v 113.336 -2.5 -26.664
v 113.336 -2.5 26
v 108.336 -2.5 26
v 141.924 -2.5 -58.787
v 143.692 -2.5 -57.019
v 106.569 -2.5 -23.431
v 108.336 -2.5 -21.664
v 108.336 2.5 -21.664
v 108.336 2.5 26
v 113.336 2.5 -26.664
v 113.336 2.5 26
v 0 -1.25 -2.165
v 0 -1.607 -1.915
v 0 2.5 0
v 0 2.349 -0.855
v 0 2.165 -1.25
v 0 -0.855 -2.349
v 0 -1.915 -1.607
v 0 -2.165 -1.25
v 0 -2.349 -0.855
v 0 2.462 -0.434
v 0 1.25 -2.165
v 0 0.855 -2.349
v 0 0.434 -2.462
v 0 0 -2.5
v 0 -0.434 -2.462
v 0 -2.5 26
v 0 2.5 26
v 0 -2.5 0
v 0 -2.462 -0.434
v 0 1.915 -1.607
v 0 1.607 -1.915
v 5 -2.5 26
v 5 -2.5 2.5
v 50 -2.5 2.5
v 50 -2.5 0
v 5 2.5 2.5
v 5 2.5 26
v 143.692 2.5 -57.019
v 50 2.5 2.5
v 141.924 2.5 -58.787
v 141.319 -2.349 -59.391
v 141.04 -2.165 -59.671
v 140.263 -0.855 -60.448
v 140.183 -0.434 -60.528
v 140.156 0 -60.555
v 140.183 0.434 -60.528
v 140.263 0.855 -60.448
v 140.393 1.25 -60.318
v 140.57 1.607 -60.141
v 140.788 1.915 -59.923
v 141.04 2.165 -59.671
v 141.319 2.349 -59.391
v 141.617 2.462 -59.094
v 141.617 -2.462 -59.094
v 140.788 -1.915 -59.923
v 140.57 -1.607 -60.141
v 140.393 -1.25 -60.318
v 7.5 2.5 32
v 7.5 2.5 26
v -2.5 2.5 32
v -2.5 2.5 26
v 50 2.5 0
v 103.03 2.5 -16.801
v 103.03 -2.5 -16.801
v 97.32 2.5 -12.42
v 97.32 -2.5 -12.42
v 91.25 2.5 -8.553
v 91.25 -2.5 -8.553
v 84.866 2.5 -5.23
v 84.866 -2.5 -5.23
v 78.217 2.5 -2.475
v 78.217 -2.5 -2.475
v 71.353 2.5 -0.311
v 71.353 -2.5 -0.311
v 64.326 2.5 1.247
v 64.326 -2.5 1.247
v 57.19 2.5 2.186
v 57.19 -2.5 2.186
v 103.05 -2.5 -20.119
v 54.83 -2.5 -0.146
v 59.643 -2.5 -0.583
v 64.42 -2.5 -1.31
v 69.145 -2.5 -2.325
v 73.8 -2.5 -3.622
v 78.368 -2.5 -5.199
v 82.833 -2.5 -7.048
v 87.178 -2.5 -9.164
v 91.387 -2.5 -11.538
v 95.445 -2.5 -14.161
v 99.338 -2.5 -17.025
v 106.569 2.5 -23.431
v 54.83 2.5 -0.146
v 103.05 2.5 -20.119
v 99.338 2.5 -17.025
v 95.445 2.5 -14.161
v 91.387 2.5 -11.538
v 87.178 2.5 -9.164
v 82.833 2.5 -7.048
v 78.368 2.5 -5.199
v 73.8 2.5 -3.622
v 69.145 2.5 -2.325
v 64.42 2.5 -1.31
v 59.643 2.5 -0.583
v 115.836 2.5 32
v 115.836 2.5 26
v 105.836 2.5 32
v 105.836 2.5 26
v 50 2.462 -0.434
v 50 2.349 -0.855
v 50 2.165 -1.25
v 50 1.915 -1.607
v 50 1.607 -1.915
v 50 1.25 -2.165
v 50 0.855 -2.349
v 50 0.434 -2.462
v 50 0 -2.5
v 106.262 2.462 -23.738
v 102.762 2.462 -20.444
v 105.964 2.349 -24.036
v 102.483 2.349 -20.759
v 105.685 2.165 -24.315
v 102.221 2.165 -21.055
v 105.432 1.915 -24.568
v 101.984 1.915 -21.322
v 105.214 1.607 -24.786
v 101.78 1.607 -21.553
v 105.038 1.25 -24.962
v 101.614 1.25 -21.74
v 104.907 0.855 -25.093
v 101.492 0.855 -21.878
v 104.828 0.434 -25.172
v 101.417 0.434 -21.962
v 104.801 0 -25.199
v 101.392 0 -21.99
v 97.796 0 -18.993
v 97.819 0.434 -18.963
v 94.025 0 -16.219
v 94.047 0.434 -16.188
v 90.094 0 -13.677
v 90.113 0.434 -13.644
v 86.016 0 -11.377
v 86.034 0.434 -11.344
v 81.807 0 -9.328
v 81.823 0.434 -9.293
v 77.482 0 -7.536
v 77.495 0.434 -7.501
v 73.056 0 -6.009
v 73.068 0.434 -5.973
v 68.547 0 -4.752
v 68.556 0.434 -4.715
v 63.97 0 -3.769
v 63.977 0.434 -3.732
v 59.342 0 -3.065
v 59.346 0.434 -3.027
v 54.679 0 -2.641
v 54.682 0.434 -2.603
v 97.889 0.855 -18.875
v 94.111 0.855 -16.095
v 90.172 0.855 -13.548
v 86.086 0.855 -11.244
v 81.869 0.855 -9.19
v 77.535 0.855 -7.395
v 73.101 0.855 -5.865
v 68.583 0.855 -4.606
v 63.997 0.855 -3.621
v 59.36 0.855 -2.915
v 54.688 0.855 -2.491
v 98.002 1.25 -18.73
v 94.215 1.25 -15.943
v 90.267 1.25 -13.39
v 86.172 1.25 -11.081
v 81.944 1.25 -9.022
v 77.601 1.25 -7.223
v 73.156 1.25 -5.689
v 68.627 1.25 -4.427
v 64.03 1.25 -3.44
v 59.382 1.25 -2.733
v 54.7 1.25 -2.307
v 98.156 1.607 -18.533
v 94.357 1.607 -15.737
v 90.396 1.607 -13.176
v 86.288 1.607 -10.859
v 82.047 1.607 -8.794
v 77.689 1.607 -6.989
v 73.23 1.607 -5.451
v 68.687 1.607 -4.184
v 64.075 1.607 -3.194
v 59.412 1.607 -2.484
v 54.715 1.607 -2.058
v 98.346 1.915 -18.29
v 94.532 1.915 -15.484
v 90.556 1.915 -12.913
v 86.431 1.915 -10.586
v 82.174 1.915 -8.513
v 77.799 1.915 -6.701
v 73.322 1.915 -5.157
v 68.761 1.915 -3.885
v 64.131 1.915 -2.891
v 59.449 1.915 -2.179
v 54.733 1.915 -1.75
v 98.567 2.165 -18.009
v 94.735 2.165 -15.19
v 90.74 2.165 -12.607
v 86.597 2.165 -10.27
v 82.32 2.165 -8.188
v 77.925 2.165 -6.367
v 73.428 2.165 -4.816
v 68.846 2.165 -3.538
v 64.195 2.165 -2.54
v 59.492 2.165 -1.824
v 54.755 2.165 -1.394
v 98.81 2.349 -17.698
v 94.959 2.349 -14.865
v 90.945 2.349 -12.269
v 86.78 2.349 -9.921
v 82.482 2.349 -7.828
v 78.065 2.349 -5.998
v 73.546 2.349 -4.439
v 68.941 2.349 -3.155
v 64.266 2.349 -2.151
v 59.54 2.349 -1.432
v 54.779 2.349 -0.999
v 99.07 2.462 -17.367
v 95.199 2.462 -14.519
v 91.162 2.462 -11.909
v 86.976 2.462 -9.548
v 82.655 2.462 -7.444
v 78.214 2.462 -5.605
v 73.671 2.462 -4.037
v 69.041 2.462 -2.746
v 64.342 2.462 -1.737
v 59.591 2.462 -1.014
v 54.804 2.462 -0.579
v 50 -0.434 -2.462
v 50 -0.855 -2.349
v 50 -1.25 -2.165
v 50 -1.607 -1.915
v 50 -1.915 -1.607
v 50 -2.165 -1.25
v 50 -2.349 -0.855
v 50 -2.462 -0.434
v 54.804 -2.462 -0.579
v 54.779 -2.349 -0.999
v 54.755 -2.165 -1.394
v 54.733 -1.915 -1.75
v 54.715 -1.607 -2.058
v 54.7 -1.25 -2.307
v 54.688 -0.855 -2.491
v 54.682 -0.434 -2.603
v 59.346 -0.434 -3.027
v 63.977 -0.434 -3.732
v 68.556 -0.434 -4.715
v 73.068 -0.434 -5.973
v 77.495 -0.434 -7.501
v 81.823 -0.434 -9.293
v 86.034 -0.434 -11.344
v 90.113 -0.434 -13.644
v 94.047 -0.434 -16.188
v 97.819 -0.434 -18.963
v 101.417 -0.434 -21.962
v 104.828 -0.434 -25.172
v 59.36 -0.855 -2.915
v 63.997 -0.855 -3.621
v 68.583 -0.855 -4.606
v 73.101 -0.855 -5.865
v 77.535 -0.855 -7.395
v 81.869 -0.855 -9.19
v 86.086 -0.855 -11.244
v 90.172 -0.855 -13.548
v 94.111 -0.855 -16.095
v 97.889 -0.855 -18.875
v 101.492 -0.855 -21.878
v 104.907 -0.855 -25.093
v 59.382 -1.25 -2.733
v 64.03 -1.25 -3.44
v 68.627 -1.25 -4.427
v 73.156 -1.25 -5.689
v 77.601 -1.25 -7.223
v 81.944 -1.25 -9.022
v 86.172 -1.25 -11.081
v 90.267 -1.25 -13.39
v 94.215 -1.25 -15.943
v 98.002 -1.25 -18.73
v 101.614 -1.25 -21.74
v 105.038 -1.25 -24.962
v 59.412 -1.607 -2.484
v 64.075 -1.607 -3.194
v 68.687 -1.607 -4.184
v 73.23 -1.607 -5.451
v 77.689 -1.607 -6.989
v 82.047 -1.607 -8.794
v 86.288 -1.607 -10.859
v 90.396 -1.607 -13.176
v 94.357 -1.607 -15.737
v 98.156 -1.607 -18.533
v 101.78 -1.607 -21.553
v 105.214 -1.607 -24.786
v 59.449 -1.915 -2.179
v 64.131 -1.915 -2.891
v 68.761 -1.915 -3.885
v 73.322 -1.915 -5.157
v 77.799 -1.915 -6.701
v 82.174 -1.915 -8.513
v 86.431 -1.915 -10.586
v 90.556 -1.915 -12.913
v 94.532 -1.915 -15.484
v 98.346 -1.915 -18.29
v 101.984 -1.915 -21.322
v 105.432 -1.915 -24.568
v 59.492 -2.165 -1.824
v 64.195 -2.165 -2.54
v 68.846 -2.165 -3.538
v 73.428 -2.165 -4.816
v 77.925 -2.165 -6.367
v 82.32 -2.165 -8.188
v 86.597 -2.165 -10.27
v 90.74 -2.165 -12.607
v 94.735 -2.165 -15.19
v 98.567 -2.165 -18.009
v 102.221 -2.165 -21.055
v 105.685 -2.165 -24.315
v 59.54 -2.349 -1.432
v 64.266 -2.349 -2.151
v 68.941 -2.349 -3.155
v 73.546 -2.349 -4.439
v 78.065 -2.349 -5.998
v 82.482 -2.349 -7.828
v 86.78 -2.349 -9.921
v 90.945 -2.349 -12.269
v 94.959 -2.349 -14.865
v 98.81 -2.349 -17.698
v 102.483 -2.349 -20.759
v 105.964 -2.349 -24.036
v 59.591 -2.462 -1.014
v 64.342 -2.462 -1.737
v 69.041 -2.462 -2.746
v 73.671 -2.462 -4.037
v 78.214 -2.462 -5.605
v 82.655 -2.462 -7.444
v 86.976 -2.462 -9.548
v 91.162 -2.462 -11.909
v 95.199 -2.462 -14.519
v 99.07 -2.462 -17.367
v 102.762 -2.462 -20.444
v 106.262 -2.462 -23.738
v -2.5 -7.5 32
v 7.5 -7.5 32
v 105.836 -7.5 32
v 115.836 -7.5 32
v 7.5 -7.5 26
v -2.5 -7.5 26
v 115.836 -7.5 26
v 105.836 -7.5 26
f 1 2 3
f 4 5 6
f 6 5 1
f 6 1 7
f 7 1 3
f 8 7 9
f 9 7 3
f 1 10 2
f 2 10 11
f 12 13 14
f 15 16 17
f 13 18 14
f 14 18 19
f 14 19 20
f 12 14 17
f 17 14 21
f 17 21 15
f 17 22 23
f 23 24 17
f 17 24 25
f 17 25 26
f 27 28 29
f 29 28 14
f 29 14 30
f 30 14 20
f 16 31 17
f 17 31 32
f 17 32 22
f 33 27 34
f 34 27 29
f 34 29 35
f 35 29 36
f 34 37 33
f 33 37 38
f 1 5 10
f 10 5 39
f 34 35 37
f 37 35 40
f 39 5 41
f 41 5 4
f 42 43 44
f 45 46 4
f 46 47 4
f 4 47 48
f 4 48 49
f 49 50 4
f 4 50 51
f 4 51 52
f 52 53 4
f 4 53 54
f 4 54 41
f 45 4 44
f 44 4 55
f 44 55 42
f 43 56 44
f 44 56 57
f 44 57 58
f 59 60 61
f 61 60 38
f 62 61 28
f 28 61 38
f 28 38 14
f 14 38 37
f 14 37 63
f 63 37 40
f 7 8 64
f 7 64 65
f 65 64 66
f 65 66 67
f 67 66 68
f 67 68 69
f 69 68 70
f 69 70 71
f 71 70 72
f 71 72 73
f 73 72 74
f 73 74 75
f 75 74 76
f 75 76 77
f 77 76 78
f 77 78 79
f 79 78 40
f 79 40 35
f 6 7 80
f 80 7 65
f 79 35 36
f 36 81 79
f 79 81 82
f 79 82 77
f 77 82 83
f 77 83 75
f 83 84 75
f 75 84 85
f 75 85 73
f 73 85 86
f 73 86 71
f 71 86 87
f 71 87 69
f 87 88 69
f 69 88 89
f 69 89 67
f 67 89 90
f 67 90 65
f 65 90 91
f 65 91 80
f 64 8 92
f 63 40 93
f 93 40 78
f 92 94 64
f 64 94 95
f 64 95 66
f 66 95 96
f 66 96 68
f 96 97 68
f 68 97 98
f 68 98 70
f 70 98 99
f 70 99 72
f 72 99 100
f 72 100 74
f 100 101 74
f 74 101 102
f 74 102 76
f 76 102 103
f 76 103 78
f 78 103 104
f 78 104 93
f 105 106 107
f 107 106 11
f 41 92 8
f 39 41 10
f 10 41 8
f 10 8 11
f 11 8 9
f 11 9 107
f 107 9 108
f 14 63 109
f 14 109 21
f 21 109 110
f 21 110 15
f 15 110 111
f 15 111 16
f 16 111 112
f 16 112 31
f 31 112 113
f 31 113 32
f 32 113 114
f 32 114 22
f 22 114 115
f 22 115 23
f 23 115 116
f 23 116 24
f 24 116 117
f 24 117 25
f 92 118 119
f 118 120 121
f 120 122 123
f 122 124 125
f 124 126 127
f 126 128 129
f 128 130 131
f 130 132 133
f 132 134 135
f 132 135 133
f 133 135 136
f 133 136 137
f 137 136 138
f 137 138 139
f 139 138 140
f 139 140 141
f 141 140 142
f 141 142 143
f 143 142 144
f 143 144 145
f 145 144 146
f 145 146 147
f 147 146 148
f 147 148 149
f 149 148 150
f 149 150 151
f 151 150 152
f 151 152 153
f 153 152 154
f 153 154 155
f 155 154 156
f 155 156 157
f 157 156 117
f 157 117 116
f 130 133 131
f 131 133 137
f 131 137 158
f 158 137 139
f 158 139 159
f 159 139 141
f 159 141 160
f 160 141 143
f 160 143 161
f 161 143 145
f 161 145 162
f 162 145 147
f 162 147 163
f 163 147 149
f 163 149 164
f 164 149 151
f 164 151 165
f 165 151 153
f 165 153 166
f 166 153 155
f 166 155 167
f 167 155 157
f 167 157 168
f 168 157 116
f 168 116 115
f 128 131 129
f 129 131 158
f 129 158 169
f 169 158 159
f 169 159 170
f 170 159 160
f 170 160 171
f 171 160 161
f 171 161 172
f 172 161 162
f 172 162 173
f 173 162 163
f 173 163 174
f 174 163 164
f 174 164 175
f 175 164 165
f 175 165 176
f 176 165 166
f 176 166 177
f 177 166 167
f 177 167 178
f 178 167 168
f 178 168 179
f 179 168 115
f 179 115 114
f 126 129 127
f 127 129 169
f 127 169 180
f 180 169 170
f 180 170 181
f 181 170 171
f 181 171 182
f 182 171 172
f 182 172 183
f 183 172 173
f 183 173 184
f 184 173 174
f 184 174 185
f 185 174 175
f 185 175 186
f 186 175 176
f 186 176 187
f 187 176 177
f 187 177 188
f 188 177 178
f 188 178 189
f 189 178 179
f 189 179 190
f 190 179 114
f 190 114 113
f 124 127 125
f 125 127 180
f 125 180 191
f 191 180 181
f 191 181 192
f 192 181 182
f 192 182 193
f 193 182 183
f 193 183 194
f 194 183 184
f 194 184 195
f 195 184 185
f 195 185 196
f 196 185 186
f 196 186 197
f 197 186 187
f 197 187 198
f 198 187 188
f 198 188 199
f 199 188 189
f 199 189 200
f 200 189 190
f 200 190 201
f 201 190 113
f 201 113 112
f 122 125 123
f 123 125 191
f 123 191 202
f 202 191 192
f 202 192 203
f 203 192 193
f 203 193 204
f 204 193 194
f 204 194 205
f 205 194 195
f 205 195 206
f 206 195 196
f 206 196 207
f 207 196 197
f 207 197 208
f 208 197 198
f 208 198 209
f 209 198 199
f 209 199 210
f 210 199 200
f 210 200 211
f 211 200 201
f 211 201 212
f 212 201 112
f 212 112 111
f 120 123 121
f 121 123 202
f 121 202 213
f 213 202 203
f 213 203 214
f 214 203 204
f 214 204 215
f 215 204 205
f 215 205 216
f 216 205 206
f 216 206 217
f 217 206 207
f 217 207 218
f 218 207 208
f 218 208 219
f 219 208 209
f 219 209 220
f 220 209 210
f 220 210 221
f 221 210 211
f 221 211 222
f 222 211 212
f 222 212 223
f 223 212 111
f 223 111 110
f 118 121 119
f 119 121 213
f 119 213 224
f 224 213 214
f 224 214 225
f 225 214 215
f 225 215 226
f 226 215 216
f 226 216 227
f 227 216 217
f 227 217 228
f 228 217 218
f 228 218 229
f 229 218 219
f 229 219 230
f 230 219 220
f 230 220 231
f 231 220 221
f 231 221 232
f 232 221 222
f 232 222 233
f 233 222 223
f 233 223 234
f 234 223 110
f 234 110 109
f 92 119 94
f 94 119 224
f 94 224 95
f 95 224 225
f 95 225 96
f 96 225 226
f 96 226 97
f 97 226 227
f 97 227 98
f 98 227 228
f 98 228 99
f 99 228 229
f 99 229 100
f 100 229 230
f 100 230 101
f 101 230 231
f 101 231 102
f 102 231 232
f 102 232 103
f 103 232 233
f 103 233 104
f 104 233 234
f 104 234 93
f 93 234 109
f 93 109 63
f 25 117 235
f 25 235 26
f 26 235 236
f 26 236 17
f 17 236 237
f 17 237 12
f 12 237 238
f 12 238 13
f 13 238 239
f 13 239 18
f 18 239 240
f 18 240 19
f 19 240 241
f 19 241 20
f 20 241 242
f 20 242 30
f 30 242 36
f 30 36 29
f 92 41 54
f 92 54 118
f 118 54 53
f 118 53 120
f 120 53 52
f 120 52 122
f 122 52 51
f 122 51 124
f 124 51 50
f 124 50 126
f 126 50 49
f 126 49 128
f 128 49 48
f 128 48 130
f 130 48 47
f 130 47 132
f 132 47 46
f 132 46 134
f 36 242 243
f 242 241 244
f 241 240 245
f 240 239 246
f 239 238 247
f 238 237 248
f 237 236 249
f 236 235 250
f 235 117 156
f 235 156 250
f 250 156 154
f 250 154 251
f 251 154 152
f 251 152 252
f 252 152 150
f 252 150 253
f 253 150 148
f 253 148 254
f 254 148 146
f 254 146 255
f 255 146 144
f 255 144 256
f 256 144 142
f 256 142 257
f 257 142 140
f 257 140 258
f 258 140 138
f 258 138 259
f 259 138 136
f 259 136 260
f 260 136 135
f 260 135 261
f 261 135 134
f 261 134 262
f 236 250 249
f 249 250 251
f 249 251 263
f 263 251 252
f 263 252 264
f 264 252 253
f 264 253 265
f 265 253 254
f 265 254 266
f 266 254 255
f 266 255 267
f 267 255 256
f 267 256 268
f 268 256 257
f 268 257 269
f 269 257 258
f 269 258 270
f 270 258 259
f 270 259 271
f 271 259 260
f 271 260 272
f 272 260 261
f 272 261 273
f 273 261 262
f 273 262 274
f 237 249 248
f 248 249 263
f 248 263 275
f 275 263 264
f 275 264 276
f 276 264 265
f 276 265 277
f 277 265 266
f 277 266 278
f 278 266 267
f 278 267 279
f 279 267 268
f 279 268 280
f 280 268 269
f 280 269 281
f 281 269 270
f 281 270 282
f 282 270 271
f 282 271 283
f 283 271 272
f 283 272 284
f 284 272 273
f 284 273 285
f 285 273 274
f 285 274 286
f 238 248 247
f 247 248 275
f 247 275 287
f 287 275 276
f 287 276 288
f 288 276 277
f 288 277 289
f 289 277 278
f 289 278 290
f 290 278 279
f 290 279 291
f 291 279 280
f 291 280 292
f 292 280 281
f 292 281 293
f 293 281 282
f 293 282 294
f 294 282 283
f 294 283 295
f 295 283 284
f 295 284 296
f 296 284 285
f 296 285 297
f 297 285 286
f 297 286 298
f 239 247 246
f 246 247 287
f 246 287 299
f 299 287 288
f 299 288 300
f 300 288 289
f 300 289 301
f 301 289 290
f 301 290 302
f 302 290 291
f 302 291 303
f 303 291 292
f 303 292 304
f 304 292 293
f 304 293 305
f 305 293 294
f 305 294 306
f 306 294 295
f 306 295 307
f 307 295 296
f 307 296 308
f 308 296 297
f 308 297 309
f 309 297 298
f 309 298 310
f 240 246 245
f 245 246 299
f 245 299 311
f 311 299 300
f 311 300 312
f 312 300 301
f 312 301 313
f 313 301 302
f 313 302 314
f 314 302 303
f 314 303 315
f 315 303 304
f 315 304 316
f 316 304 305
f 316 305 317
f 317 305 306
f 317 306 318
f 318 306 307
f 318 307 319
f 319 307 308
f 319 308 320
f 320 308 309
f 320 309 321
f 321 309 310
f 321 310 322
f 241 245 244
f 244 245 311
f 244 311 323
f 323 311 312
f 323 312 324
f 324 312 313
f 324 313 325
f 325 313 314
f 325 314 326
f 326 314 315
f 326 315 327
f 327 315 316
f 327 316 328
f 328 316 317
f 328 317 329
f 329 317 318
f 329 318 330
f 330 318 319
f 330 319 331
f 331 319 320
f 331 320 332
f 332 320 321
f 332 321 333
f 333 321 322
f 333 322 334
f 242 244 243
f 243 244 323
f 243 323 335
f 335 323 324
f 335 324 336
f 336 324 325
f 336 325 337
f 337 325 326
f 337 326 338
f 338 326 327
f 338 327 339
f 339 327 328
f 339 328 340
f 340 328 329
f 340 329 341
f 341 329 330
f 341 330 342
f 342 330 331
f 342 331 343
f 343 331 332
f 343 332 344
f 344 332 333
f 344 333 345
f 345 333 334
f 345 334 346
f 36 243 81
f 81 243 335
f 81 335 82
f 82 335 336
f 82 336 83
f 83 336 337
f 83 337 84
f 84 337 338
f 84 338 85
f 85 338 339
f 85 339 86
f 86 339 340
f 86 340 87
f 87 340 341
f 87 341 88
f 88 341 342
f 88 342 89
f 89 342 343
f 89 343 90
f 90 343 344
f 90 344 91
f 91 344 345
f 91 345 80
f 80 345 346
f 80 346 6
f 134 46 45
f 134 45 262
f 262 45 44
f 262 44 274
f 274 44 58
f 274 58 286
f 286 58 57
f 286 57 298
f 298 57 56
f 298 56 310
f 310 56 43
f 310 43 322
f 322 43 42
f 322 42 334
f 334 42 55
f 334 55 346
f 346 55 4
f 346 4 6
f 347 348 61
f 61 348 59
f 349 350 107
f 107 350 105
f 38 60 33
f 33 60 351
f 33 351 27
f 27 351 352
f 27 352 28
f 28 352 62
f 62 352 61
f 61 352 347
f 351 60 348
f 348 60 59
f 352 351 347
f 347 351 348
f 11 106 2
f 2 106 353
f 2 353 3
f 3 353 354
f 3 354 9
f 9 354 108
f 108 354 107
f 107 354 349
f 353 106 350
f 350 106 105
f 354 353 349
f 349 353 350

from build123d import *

# Parameters (mm, degrees)
SKETCH2_W           = 5
SKETCH2_H           = 5
FILLET1_R           = 2.5
SKETCH3_W           = 5
SKETCH3_H           = 29.5
BOSS_EXTRUDE1_DEPTH = 2.5
SKETCH4_W           = 10
SKETCH4_H           = 10
BOSS_EXTRUDE2_DEPTH = 6


with BuildPart() as part:
    # Sweep3: sweep along a path in Sketch1
    with BuildLine(Plane(origin=(0, 0, 0), x_dir=(1, 0, 0), z_dir=(0, 1, 0))) as sweep3_path:
        Line((0, 0), (50, 0))
        ThreePointArc((50, 0), (80.614674589, 6.089637399), (106.568542495, 23.431457505))
        Line((106.568542495, 23.431457505), (141.923881554, 58.786796564))
    # Sketch2 → Sweep3 (sweep)
    with BuildSketch(Plane(origin=(0, 0, 0), x_dir=(0, 0, -1), z_dir=(1, 0, 0))):
        Rectangle(SKETCH2_W, SKETCH2_H)
    sweep(path=sweep3_path.line)

    # Fillet1
    fillet1_edges = [part.edges().sort_by_distance(p)[0] for p in [
        (122.478445072, -2.5, -42.876893988),
        (79.657966008, -2.5, -8.39933623),
        (122.478445072, 2.5, -42.876893988),
        (79.657966008, 2.5, -8.39933623),
        (25, -2.5, -2.5),
        (25, 2.5, -2.5),
    ]]
    fillet(fillet1_edges, radius=FILLET1_R - 0.0001)  # a hair under: the kernel refuses the full size

    # Sketch3 → Boss-Extrude1 (add, symmetric)
    with BuildSketch(Plane(origin=(0, 0, 0), x_dir=(1, 0, 0), z_dir=(0, 1, 0))):
        with Locations((2.5, -17.25)):
            Rectangle(SKETCH3_W, SKETCH3_H)
        Polygon((108.336309448, 21.663690552), (113.336309448, 26.663690552), (113.336309448, -32), (108.336309448, -32), align=None)
    extrude(amount=BOSS_EXTRUDE1_DEPTH, both=True)

    # Sketch4 → Boss-Extrude2 (add)
    with BuildSketch(Plane.XY.offset(32)):
        with Locations((2.5, -2.5)):
            Rectangle(SKETCH4_W, SKETCH4_H)
        with Locations((110.836309448, -2.5)):
            Rectangle(SKETCH4_W, SKETCH4_H)
    extrude(amount=-BOSS_EXTRUDE2_DEPTH)


solid = part.part
